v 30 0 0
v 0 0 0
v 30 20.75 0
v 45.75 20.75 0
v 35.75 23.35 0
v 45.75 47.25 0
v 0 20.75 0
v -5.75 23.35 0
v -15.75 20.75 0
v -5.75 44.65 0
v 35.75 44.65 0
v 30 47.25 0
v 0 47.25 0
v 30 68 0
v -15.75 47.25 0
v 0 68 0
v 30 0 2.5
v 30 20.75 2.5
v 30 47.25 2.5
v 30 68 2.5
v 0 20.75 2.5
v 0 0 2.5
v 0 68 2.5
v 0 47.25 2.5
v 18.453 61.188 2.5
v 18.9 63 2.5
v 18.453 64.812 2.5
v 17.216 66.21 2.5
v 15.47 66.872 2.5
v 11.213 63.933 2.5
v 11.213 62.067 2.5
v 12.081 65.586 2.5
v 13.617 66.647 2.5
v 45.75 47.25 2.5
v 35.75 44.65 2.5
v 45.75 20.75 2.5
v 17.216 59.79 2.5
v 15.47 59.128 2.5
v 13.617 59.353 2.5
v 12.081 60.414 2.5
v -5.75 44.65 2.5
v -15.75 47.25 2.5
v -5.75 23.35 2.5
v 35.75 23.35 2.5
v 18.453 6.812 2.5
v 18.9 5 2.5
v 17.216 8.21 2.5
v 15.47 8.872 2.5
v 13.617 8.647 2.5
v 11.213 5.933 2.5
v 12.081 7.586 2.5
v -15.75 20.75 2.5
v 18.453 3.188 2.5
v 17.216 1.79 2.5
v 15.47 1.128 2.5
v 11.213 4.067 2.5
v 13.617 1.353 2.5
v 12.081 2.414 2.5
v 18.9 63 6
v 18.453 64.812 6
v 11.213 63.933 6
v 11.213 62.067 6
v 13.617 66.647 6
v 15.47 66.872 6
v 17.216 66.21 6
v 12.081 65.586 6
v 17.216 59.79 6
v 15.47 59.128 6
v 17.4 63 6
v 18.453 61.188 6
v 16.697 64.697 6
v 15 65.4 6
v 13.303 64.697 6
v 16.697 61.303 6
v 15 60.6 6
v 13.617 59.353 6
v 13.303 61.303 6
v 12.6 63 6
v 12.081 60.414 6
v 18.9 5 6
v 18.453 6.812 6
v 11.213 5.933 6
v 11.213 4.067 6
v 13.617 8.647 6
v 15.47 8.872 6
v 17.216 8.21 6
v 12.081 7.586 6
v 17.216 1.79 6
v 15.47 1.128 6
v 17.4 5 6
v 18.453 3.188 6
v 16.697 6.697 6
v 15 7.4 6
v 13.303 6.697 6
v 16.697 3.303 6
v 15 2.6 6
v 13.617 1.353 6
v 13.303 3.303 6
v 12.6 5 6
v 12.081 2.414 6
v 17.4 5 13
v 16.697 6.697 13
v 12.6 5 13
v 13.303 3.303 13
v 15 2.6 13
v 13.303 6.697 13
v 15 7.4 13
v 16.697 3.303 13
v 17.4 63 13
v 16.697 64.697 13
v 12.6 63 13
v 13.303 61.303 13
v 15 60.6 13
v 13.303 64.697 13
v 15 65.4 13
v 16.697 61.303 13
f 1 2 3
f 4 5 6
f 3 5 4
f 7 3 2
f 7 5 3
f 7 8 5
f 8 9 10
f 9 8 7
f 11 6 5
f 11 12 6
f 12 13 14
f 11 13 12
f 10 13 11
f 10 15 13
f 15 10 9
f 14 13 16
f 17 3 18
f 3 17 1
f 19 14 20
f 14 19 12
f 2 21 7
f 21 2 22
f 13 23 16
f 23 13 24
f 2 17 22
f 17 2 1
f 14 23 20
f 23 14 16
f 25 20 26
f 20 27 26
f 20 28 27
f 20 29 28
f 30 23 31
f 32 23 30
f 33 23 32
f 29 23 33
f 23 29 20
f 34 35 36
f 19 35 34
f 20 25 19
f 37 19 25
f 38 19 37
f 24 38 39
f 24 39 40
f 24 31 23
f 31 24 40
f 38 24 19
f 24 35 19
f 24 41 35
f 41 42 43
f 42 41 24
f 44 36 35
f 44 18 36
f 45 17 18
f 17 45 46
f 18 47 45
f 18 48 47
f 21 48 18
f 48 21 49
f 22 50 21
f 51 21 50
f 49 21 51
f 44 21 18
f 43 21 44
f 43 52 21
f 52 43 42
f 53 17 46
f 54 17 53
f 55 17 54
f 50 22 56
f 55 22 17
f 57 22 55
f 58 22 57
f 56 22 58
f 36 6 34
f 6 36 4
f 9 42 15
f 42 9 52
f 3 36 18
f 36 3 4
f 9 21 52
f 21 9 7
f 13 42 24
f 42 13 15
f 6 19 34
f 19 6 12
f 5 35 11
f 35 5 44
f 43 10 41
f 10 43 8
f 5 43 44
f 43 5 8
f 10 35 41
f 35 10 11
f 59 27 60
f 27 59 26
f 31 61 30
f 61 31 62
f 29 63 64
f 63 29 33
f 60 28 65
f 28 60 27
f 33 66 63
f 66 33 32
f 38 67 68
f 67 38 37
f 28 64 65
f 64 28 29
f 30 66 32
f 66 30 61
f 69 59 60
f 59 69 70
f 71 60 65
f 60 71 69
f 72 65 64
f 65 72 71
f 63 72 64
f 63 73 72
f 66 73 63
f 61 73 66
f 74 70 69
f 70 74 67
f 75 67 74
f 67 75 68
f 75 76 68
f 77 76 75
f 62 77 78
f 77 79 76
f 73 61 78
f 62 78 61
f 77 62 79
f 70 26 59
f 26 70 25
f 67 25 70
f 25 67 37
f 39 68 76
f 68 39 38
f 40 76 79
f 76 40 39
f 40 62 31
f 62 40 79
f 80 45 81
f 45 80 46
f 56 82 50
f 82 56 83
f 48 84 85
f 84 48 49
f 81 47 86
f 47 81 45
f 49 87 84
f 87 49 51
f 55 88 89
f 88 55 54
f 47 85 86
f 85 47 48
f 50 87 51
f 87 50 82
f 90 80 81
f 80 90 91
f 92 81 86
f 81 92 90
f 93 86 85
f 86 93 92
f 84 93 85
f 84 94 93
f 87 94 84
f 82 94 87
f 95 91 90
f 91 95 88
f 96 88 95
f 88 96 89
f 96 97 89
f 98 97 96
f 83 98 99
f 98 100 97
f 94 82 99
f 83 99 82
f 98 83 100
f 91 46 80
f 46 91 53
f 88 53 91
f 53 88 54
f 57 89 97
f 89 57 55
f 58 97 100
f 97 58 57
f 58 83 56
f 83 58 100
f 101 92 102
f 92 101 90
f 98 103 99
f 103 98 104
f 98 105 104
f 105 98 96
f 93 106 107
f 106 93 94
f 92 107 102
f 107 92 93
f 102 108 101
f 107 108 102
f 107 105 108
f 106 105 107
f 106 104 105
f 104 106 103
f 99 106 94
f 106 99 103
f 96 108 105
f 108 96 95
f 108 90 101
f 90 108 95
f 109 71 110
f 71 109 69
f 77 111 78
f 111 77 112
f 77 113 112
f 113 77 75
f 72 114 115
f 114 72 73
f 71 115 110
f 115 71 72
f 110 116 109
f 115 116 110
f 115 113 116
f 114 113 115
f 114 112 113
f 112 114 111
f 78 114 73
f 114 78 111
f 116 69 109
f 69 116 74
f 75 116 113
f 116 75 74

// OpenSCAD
width = 68;
length = 30;

sBucketWidth = 26.5;
sBucketLength = 61.5;
sBucketDepth = 45;

p1 = [length/2, 63, 0];
p2 = [length/2, 5, 0];

bl = [11,10,0]; 
br = [86,10,0]; 
tl = [10,58,0]; 
tr = [91.5,58,0]; 

center = [length/2, width/2];
thickness = 2.5;
innerRadius = 1;
outerRadius = innerRadius + thickness;

union() {
    translate(p1) cylinder(h=6,r=3.9);
    translate(p2) cylinder(h=6,r=3.9);

    translate(p2) cylinder(h=13,r=2.4);
    translate(p1) cylinder(h=13,r=2.4);
    
    
    difference() {
        union() {
            linear_extrude(height = thickness) square([length,width]);
            difference() {
                translate([center[0] - sBucketLength / 2, center[1] - sBucketWidth / 2]) 
                linear_extrude(height = thickness) square([sBucketLength,sBucketWidth]);
            }
        }
        translate([center[0] - sBucketLength / 2 + 10 , center[1] - sBucketWidth / 2 + 2.6]) 
        linear_extrude(height = thickness)  square([sBucketLength - 20, sBucketWidth - 5.2]);                               
    }
}
